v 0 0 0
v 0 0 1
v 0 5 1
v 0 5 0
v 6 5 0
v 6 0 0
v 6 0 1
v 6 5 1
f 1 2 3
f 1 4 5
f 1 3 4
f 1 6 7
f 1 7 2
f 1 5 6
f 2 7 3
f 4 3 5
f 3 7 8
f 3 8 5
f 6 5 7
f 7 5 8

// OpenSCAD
/* Warning, this is a very basic generator with a lot of approximation 
input data : [DFN-S, CSX, 6x5mm, 8, , B, C04-00113B]
generated by com.zoubworld.electronics.cad.model3d.Basic
Date : Sun Feb 15 10:50:48 CET 2026
*/

//body
color("black")
translate([0,0,0])
cube([6.0,5.0,1.0], center=false);
